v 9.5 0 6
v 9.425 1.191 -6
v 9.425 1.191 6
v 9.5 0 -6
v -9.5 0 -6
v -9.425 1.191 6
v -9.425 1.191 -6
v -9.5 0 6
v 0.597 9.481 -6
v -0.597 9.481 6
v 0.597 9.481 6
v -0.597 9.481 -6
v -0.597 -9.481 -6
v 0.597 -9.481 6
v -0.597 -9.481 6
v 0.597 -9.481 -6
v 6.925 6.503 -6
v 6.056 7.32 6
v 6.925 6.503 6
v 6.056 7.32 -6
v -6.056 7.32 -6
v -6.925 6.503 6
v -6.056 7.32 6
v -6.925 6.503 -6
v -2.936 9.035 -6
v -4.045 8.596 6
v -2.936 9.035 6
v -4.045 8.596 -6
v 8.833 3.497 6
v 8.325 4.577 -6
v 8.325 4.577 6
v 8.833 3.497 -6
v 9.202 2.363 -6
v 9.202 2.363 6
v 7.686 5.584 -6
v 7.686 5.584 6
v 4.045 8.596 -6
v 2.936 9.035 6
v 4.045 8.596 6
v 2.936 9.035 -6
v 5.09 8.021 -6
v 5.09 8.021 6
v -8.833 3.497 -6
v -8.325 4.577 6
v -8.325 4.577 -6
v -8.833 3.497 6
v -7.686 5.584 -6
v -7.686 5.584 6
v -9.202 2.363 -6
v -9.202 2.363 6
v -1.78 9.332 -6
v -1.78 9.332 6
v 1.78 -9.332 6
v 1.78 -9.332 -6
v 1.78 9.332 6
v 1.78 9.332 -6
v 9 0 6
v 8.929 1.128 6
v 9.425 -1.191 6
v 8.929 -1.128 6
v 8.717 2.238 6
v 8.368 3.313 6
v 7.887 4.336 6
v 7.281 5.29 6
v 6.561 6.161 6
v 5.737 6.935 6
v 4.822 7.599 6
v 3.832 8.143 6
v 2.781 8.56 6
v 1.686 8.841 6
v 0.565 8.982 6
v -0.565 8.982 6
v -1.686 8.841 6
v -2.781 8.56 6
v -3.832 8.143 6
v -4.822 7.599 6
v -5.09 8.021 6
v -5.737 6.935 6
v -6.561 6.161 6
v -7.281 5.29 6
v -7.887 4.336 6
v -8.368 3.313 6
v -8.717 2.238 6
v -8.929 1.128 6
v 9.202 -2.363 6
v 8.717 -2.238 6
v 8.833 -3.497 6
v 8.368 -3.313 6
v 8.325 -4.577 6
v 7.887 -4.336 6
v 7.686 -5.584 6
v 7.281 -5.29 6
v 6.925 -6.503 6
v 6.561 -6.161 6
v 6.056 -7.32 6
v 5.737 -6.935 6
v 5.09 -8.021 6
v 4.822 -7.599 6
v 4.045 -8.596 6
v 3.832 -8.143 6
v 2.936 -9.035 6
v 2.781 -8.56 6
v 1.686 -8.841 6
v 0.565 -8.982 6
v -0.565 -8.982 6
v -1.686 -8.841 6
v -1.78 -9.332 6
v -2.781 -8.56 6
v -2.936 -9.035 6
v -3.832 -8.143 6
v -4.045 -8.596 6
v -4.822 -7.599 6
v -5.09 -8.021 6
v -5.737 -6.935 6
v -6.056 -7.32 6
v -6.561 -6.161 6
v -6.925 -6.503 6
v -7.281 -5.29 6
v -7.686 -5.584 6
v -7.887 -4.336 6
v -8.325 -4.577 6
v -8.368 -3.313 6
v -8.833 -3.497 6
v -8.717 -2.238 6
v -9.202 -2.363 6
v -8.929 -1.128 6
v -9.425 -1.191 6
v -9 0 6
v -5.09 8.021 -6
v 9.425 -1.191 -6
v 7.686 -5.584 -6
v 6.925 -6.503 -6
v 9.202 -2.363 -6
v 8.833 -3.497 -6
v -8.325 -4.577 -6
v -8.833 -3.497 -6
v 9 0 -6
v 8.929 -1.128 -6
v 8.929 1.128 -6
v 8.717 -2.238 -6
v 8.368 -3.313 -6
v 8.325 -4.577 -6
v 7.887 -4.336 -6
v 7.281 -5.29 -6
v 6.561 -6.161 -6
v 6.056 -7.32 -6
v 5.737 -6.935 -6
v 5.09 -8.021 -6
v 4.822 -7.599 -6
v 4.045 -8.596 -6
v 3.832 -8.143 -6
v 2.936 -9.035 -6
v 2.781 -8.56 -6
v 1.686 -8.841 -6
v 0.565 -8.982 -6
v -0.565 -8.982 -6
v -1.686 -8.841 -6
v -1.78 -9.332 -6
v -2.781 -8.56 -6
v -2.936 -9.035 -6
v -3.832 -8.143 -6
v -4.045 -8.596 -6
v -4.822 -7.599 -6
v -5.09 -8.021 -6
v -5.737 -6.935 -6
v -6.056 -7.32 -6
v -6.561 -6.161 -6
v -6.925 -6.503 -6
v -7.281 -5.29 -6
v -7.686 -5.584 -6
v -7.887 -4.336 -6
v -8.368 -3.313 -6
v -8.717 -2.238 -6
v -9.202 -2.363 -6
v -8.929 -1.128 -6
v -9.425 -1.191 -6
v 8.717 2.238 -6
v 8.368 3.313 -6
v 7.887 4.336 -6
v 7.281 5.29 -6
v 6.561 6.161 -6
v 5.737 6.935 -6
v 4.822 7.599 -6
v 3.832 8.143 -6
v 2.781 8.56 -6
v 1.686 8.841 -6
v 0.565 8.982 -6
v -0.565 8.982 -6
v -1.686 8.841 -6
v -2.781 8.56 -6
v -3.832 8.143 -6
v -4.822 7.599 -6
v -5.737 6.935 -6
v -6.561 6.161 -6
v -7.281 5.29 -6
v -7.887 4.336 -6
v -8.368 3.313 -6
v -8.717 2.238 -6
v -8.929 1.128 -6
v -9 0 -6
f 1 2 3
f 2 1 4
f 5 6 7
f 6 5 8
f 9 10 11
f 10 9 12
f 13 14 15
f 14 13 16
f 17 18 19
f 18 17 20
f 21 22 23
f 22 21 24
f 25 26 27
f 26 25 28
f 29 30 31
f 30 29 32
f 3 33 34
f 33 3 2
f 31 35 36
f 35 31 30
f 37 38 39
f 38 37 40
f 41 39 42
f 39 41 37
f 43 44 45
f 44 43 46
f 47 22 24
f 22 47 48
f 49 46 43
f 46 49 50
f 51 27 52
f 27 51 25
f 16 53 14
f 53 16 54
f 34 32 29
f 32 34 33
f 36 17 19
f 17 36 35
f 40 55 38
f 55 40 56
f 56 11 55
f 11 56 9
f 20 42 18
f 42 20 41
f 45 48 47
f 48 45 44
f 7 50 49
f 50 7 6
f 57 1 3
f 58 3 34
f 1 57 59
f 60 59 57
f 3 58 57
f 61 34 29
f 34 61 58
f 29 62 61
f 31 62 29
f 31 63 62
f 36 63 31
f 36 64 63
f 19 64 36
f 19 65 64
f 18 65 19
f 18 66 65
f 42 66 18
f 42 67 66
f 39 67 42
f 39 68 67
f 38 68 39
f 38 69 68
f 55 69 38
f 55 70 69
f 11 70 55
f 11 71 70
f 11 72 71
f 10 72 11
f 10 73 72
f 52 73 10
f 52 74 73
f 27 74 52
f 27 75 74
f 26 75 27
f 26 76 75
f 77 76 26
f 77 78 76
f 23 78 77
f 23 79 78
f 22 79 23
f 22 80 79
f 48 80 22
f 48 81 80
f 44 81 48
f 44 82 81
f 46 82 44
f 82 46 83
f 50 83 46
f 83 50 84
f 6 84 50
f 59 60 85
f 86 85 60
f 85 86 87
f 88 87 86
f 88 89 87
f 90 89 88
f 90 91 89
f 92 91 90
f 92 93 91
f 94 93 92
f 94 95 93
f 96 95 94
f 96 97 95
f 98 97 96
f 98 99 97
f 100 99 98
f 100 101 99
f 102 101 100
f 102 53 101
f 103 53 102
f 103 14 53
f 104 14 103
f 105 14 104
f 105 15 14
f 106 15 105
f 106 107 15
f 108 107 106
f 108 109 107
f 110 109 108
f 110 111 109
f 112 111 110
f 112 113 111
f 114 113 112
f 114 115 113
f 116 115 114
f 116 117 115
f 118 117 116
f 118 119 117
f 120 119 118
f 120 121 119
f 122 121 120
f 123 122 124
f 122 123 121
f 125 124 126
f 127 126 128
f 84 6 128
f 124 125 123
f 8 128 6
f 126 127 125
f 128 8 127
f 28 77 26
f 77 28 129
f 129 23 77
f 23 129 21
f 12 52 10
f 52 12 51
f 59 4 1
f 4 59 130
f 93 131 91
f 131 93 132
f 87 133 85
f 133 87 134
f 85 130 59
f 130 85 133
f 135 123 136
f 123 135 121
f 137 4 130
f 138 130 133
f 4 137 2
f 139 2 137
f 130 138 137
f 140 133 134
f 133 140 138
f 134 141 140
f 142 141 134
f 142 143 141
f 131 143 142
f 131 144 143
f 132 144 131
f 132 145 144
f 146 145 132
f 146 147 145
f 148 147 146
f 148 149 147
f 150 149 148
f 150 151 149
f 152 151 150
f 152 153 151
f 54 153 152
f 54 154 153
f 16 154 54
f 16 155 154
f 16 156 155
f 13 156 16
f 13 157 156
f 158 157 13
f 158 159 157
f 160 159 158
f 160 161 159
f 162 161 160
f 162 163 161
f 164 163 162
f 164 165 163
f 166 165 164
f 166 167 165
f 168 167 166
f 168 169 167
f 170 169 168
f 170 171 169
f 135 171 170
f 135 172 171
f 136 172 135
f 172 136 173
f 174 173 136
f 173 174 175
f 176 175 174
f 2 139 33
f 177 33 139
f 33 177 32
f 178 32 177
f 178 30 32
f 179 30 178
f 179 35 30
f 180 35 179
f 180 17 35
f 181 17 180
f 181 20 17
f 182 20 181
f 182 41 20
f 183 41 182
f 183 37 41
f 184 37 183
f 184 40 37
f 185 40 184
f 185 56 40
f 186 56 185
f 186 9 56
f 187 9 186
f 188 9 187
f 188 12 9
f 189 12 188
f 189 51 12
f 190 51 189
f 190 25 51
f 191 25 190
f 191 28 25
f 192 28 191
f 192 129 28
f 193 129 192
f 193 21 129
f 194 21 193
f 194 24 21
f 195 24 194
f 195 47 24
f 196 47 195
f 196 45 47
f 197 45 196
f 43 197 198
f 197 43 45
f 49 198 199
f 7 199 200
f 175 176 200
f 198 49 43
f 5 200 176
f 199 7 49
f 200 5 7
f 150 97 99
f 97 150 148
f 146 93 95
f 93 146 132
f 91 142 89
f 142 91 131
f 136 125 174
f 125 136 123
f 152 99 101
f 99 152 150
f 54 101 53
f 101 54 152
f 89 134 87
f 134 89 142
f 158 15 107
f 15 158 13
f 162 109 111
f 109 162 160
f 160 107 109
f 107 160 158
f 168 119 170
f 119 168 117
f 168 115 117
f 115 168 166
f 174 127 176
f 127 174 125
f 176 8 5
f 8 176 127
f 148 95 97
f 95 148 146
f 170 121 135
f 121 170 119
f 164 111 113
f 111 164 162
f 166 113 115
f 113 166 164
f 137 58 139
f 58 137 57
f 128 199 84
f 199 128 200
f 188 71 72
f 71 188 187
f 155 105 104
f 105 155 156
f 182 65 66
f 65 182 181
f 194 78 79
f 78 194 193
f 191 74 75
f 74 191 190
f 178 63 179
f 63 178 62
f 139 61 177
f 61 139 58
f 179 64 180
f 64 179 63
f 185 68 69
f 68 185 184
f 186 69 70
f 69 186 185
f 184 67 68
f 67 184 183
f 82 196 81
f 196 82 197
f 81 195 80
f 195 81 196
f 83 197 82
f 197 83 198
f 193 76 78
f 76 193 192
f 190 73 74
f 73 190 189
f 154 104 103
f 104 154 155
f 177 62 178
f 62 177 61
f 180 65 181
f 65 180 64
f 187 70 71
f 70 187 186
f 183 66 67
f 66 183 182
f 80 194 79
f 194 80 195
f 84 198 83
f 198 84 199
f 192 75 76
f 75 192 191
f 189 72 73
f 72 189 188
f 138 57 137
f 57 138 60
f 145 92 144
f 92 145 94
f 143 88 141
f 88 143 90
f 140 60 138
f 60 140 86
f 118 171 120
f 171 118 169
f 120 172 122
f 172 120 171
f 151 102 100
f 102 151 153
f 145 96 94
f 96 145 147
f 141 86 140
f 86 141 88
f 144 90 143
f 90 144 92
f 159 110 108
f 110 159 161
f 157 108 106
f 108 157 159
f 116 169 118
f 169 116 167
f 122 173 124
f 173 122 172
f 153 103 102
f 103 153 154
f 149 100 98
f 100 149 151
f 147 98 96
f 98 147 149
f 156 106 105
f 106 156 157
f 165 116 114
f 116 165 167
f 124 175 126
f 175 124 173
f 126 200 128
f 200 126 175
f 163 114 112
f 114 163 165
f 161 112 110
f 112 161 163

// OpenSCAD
$fn = 50;


difference() {
	union() {
		translate(v = [0, 0, -6.0000000000]) {
			cylinder(h = 12, r = 9.5000000000);
		}
	}
	union() {
		translate(v = [0, 0, -100.0000000000]) {
			cylinder(h = 200, r = 9);
		}
	}
}
